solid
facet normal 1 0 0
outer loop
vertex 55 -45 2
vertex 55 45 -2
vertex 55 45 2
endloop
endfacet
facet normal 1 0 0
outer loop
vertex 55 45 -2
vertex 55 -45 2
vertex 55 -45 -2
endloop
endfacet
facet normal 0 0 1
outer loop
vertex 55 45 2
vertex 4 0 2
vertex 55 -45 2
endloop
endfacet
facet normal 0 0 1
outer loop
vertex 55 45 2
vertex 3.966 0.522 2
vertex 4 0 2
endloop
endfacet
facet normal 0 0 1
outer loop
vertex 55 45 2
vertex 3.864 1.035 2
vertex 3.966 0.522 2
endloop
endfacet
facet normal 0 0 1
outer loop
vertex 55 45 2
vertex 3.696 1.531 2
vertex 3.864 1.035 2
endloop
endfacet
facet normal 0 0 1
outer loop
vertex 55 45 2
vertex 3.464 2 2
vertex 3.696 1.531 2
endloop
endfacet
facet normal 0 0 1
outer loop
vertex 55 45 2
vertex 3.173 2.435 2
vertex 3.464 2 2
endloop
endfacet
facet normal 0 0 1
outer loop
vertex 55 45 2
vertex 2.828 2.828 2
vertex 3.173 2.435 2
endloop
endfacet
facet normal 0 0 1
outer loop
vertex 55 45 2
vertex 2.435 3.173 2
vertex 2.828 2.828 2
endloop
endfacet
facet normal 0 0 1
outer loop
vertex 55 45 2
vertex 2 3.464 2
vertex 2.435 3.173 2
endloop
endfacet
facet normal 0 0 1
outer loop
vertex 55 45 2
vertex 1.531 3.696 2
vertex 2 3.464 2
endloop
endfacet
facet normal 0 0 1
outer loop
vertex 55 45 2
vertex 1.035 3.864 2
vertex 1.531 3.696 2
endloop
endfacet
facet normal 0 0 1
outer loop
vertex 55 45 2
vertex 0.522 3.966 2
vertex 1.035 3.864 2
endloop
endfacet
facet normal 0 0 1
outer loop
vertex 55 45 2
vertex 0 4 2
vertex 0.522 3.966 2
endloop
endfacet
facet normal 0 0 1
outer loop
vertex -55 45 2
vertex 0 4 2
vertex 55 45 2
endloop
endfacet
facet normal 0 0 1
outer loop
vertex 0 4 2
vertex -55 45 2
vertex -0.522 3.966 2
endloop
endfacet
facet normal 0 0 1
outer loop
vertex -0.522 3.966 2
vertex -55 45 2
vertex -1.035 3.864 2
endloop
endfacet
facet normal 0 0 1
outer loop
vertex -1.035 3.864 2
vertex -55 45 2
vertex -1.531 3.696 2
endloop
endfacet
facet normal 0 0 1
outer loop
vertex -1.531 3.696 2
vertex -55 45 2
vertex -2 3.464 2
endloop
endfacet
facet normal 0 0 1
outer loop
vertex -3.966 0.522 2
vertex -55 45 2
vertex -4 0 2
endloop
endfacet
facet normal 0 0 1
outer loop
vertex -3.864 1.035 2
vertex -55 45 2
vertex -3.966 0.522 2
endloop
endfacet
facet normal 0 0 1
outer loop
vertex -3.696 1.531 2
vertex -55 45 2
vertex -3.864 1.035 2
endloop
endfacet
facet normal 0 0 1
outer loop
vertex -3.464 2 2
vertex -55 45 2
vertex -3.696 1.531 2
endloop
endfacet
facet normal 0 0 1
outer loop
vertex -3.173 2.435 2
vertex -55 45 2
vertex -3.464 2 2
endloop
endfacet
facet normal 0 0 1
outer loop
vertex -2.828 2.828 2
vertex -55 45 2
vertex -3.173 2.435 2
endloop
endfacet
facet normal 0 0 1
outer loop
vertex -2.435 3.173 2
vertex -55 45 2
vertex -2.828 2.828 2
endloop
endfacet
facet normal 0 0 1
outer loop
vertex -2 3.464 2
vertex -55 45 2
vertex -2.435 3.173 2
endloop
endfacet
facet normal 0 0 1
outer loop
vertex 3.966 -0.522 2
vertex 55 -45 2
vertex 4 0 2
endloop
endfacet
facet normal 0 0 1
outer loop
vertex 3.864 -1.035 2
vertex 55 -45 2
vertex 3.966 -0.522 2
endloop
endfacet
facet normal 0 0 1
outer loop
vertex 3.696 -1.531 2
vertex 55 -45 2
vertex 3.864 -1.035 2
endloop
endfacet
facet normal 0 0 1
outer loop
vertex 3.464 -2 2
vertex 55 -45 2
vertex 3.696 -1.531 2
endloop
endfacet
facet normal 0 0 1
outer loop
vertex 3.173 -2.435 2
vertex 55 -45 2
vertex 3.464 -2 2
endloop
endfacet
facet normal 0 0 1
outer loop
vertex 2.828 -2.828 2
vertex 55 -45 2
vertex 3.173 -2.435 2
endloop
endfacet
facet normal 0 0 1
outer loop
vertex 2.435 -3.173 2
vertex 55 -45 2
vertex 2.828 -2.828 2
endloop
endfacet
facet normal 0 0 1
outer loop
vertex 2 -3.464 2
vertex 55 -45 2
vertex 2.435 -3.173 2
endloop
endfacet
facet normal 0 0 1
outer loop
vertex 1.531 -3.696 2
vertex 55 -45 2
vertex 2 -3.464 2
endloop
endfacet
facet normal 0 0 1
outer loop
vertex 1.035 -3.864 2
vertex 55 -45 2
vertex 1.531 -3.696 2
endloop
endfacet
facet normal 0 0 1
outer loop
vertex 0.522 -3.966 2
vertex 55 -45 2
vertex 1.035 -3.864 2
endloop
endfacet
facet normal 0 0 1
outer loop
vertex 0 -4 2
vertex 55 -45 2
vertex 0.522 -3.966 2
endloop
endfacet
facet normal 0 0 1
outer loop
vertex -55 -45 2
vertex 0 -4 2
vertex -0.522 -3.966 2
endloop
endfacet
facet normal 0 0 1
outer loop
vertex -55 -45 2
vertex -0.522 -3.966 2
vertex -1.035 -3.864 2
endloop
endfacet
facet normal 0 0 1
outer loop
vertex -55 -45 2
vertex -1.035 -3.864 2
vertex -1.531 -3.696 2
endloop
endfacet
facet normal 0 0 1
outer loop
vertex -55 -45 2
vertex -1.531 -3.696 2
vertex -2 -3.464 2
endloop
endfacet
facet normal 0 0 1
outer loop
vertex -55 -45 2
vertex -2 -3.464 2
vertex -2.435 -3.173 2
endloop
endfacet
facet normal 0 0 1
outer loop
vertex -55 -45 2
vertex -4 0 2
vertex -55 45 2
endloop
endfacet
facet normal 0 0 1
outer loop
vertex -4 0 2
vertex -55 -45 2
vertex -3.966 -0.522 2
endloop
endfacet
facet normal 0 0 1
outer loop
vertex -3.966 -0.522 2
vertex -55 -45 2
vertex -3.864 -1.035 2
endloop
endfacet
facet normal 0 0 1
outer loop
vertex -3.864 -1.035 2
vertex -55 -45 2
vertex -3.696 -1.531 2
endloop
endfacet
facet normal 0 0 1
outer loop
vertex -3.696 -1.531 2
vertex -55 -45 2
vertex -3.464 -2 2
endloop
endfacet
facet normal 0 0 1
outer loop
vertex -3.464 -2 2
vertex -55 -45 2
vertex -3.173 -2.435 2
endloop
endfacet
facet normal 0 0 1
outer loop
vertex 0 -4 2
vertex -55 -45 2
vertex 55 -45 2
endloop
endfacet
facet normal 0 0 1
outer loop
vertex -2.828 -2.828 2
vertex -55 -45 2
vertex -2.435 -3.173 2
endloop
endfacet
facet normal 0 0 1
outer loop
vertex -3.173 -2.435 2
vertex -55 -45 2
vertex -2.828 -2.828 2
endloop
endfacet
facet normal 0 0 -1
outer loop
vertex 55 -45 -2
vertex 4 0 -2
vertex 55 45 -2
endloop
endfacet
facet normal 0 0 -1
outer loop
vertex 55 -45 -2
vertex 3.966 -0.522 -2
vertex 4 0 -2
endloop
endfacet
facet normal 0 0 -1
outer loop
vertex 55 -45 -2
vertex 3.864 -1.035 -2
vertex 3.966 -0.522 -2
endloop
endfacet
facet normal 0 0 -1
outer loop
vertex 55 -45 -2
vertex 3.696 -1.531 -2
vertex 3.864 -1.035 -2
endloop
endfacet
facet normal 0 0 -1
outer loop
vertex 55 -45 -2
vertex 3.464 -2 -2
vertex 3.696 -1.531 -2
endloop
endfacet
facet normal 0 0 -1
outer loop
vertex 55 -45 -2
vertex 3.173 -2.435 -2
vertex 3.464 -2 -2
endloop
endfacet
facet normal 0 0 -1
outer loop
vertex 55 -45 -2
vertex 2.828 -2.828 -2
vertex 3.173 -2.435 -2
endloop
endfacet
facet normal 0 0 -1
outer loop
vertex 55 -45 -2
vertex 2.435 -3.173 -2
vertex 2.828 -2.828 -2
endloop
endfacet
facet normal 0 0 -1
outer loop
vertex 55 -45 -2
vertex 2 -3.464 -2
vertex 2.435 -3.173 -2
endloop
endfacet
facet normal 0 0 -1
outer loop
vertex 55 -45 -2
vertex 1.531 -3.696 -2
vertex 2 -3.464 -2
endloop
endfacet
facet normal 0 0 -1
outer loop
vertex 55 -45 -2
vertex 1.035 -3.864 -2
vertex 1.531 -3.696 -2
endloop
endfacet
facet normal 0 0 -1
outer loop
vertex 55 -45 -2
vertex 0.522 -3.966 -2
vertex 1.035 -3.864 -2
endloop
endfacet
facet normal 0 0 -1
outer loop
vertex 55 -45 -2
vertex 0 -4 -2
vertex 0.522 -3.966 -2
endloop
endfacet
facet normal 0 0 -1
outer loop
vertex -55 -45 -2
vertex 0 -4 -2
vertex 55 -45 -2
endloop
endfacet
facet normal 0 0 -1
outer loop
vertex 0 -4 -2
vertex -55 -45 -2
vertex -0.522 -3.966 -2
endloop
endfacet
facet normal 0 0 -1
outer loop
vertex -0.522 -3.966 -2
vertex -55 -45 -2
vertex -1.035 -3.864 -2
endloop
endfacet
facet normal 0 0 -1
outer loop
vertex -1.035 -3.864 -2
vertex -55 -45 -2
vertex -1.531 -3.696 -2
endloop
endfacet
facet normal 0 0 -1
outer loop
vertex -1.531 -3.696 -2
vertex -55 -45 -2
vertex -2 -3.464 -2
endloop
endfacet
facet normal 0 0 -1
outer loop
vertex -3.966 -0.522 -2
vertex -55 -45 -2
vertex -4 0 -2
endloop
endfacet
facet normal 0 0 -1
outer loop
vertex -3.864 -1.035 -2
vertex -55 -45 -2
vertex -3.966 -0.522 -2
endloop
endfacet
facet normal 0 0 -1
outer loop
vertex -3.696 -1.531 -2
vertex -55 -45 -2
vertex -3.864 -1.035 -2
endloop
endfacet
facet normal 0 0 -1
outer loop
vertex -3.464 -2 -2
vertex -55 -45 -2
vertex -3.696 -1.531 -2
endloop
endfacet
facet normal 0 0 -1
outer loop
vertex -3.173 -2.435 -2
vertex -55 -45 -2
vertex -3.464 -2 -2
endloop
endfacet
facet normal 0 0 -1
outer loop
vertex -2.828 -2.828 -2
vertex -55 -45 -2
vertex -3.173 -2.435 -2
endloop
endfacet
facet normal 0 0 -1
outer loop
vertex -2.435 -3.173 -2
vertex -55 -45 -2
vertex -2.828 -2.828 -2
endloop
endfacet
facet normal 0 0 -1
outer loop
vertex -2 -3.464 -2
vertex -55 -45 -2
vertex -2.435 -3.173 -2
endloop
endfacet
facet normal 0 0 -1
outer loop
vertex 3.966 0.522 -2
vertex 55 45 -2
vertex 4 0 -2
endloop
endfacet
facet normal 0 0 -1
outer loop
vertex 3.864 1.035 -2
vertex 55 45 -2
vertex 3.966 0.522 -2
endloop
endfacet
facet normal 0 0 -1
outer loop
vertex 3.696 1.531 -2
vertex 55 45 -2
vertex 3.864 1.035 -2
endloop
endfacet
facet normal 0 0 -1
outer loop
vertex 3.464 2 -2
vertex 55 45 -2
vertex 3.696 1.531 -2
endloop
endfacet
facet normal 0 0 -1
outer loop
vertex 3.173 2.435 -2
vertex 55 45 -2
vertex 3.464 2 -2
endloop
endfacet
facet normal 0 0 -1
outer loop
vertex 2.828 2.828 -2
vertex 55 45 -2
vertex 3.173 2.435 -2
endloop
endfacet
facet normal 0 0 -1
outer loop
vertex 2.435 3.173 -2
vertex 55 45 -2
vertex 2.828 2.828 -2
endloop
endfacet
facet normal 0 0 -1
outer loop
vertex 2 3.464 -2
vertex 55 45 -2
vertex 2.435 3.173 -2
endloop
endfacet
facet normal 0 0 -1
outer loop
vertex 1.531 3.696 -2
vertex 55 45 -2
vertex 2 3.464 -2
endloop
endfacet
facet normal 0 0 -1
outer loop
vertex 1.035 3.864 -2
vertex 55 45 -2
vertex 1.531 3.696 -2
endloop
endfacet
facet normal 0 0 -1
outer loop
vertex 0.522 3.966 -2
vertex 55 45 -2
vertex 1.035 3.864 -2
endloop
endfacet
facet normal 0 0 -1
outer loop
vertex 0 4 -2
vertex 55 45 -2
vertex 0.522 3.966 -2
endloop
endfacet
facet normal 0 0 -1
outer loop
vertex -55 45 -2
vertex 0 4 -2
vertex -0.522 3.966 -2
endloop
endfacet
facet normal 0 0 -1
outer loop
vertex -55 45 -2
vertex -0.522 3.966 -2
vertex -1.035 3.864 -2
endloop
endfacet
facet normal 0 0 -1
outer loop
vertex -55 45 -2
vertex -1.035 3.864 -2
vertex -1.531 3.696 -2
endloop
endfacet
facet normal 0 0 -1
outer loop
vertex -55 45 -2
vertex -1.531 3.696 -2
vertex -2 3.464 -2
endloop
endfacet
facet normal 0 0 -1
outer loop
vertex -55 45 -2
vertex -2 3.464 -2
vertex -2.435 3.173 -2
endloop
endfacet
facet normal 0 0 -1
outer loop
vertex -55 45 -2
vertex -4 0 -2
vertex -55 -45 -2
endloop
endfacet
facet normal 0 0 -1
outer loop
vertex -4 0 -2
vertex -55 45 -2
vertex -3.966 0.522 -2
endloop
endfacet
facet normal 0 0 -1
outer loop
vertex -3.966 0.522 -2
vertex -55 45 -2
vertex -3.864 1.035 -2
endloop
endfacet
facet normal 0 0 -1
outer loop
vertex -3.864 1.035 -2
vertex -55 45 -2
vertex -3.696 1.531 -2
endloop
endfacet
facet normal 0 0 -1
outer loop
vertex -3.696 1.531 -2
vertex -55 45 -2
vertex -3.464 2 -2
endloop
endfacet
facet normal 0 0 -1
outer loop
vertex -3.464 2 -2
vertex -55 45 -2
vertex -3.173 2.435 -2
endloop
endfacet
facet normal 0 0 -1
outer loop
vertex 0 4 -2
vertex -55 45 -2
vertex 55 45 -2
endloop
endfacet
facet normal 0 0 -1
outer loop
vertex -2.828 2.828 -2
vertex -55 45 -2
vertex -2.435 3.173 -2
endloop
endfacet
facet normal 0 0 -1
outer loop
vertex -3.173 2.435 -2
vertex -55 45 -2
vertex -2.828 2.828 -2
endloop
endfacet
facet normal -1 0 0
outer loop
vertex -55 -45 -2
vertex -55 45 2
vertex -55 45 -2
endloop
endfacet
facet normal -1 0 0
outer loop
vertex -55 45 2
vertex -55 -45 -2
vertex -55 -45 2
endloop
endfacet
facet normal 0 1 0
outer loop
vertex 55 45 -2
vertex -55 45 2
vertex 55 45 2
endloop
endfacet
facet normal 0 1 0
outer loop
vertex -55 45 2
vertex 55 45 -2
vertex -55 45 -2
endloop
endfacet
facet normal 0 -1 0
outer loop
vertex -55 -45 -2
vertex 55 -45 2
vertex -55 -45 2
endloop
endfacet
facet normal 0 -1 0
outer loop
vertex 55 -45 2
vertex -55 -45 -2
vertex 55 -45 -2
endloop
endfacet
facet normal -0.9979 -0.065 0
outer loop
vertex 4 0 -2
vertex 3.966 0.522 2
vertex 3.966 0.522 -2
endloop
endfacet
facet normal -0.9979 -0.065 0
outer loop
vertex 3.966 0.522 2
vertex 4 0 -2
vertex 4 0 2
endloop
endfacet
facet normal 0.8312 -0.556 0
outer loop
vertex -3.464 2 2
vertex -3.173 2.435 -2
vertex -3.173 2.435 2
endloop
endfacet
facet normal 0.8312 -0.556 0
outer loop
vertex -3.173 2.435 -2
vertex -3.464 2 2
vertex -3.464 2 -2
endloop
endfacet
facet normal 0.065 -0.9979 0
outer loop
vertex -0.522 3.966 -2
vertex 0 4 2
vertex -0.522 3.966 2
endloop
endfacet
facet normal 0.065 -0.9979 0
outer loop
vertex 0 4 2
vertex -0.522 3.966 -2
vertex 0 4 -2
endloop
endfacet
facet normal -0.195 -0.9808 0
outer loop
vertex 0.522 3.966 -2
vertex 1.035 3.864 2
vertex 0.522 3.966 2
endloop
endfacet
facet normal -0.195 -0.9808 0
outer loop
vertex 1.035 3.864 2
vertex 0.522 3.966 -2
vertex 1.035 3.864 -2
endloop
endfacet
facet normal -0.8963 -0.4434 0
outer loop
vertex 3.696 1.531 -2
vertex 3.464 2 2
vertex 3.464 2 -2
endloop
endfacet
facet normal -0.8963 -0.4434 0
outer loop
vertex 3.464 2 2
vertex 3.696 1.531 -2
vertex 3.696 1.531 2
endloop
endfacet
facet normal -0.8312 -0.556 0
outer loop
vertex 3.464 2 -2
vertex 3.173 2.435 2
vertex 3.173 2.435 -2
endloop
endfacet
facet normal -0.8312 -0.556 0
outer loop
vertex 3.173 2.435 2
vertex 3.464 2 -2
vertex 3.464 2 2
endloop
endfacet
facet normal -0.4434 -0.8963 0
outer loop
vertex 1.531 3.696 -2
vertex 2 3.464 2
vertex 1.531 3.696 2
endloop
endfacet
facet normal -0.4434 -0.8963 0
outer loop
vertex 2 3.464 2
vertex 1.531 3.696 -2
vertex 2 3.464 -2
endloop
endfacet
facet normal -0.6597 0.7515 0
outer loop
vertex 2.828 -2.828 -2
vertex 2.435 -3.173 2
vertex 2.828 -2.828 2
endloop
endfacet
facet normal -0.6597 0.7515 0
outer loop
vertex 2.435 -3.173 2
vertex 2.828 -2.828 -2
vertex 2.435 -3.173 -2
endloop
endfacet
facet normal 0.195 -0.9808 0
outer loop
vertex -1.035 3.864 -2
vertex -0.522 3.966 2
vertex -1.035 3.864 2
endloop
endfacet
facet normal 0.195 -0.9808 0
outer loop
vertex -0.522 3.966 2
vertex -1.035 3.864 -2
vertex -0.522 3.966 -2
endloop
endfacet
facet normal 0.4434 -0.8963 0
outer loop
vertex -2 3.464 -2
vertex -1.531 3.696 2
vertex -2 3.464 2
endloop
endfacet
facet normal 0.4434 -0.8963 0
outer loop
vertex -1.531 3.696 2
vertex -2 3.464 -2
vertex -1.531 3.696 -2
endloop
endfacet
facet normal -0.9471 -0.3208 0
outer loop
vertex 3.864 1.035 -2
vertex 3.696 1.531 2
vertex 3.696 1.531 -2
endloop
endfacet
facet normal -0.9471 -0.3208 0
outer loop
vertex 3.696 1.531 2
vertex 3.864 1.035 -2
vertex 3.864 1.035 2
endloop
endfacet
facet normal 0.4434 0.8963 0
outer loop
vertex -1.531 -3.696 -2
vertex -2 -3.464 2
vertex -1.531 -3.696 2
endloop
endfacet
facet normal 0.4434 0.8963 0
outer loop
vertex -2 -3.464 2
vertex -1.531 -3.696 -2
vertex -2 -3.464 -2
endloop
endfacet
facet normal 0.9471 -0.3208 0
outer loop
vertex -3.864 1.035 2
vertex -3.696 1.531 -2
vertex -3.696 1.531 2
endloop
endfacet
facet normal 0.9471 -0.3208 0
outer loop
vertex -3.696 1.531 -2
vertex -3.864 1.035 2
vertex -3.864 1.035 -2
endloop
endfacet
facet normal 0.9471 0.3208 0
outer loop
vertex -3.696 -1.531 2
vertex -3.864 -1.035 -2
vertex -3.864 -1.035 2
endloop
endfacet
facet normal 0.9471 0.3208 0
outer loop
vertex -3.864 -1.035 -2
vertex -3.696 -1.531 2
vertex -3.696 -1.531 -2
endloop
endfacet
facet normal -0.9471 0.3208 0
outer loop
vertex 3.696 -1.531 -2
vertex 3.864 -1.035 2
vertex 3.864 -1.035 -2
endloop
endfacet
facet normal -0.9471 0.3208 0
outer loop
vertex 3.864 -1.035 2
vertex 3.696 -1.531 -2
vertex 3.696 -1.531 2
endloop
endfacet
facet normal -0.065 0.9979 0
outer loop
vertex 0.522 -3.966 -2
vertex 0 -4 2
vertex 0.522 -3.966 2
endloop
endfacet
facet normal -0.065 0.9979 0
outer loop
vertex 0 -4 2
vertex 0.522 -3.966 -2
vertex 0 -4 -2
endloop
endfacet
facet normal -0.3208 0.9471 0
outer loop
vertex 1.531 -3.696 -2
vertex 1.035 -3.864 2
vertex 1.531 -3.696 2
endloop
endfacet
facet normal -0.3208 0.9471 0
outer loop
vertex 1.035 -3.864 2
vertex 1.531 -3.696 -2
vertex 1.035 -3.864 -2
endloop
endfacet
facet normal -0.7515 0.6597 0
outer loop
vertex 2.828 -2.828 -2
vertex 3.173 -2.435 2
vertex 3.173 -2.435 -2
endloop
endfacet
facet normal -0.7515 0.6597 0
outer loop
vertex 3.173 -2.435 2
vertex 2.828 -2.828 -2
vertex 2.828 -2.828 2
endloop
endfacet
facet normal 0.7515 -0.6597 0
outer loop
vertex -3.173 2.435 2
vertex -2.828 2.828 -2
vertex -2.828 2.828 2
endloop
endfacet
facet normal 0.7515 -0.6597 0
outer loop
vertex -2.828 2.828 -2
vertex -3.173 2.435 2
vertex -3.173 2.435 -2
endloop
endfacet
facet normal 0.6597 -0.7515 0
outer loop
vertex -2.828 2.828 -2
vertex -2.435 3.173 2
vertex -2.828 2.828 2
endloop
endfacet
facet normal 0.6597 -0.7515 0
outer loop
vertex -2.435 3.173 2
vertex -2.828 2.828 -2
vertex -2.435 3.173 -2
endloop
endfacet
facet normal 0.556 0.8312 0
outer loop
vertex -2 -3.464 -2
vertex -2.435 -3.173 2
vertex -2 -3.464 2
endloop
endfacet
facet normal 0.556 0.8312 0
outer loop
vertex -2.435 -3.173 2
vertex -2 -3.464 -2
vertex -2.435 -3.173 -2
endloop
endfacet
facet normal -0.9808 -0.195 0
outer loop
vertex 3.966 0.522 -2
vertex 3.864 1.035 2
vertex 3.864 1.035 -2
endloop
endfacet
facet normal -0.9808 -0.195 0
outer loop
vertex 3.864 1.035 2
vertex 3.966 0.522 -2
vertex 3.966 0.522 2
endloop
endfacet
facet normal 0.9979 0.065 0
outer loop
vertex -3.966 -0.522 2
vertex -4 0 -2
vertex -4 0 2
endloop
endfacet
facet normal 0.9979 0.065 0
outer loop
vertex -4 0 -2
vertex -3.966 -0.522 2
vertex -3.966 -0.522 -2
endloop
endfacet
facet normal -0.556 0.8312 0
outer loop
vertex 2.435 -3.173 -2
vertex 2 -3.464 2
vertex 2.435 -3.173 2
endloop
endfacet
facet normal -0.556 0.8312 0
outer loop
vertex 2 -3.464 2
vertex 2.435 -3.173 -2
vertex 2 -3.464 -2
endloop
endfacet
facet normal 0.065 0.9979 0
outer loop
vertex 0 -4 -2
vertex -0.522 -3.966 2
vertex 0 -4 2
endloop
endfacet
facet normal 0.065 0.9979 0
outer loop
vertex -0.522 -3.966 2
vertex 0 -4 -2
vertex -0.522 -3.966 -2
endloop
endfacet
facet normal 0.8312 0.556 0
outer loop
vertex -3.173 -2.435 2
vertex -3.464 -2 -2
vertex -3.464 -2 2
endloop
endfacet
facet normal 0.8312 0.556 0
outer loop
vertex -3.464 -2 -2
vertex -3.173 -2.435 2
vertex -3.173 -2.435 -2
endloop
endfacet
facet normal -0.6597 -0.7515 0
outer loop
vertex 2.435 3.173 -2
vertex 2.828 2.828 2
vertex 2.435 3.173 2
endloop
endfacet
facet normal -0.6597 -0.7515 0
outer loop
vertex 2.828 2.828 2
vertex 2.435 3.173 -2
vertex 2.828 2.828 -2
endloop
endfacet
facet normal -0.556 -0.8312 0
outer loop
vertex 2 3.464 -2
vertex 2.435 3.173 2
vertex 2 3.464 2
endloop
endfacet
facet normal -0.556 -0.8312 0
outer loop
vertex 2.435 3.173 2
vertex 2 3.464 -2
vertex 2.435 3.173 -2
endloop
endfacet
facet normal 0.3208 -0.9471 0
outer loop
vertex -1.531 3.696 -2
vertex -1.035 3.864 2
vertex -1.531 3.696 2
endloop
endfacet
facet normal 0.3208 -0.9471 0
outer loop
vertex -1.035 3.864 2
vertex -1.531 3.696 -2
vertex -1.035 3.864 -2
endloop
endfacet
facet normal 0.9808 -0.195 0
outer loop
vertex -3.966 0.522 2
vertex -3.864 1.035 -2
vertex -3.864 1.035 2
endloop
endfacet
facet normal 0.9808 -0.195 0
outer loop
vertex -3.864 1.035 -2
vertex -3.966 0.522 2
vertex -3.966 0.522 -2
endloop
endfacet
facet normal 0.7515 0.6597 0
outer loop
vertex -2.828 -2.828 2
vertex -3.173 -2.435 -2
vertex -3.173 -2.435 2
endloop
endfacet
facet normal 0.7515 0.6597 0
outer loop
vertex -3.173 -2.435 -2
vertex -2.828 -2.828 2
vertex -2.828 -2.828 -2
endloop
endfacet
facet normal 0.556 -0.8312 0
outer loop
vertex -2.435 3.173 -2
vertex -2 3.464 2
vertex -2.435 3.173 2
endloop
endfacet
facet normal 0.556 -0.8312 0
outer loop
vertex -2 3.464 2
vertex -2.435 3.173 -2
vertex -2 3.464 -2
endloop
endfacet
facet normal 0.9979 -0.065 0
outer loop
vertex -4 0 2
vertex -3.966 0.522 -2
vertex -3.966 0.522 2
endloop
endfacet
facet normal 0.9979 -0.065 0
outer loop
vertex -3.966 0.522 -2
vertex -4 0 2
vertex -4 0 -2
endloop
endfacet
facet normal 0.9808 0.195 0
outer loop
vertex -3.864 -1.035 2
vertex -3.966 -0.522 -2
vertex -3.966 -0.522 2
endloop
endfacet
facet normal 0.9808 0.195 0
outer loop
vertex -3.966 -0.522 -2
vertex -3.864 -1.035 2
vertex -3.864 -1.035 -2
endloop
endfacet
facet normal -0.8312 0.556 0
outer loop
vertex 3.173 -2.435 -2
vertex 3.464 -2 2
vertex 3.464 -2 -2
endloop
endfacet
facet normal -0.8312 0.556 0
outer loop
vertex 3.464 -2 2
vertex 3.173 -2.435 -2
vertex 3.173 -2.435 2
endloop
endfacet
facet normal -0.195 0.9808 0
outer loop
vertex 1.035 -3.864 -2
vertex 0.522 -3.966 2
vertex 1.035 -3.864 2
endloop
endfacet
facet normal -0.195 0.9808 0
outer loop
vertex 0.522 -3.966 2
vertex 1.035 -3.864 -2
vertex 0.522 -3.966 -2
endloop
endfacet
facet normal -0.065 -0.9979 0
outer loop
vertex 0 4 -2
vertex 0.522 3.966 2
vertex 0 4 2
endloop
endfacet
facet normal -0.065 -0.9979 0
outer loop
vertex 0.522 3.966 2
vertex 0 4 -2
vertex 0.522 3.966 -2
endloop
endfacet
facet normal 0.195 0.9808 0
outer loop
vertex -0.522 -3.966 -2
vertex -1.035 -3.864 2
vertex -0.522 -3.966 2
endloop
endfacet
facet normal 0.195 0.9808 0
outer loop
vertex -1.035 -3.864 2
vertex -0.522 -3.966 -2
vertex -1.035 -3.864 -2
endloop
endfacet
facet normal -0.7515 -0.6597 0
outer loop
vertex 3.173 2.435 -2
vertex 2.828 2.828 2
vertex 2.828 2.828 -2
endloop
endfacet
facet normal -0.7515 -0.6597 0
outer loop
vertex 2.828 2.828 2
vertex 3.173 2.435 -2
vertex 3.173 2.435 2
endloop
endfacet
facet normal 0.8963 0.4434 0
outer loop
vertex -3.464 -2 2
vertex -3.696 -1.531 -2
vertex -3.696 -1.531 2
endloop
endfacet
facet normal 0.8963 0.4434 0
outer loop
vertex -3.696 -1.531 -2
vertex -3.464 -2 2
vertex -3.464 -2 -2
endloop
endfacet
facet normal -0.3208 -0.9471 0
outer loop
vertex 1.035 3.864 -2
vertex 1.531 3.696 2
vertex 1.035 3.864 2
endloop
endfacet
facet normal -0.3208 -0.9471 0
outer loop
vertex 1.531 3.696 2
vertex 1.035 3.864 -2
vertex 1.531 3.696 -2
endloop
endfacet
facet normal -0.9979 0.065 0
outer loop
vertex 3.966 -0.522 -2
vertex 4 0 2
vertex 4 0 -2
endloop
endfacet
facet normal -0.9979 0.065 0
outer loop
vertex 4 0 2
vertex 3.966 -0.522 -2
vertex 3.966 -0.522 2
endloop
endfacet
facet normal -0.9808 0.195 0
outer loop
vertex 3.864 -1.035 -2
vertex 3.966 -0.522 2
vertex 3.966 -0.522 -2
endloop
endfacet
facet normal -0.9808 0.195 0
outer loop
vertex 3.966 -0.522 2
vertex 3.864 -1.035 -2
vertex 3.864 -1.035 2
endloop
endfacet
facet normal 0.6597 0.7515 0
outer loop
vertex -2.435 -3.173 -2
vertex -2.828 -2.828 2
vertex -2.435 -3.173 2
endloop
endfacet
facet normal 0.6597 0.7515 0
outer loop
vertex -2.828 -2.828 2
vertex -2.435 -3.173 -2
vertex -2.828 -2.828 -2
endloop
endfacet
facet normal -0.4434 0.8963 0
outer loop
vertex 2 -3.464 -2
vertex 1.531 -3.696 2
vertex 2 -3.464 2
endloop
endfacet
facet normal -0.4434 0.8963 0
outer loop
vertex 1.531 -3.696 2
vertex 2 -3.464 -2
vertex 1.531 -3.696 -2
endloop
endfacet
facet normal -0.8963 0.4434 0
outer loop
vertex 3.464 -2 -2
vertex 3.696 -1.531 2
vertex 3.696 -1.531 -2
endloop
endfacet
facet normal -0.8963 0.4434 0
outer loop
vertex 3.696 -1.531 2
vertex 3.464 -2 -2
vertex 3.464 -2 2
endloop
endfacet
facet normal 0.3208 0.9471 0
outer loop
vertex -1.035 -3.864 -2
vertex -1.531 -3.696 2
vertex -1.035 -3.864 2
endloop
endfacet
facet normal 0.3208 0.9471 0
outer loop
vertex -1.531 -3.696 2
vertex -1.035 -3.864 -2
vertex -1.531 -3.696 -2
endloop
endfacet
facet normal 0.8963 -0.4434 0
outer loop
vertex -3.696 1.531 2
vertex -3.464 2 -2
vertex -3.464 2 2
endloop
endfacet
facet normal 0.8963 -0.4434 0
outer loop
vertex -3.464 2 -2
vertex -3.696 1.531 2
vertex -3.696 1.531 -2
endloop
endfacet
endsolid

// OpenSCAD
// ========================================
// a 11 x 9 x 0.4 cm plate with one 0.8 cm holes
// NeuroCAD canonical IR; dimensions are millimetres
// ========================================
$fn = 48;

difference() {
  cube(size=[110, 90, 4], center=true);
  cylinder(r=4, h=6, center=true);
}
